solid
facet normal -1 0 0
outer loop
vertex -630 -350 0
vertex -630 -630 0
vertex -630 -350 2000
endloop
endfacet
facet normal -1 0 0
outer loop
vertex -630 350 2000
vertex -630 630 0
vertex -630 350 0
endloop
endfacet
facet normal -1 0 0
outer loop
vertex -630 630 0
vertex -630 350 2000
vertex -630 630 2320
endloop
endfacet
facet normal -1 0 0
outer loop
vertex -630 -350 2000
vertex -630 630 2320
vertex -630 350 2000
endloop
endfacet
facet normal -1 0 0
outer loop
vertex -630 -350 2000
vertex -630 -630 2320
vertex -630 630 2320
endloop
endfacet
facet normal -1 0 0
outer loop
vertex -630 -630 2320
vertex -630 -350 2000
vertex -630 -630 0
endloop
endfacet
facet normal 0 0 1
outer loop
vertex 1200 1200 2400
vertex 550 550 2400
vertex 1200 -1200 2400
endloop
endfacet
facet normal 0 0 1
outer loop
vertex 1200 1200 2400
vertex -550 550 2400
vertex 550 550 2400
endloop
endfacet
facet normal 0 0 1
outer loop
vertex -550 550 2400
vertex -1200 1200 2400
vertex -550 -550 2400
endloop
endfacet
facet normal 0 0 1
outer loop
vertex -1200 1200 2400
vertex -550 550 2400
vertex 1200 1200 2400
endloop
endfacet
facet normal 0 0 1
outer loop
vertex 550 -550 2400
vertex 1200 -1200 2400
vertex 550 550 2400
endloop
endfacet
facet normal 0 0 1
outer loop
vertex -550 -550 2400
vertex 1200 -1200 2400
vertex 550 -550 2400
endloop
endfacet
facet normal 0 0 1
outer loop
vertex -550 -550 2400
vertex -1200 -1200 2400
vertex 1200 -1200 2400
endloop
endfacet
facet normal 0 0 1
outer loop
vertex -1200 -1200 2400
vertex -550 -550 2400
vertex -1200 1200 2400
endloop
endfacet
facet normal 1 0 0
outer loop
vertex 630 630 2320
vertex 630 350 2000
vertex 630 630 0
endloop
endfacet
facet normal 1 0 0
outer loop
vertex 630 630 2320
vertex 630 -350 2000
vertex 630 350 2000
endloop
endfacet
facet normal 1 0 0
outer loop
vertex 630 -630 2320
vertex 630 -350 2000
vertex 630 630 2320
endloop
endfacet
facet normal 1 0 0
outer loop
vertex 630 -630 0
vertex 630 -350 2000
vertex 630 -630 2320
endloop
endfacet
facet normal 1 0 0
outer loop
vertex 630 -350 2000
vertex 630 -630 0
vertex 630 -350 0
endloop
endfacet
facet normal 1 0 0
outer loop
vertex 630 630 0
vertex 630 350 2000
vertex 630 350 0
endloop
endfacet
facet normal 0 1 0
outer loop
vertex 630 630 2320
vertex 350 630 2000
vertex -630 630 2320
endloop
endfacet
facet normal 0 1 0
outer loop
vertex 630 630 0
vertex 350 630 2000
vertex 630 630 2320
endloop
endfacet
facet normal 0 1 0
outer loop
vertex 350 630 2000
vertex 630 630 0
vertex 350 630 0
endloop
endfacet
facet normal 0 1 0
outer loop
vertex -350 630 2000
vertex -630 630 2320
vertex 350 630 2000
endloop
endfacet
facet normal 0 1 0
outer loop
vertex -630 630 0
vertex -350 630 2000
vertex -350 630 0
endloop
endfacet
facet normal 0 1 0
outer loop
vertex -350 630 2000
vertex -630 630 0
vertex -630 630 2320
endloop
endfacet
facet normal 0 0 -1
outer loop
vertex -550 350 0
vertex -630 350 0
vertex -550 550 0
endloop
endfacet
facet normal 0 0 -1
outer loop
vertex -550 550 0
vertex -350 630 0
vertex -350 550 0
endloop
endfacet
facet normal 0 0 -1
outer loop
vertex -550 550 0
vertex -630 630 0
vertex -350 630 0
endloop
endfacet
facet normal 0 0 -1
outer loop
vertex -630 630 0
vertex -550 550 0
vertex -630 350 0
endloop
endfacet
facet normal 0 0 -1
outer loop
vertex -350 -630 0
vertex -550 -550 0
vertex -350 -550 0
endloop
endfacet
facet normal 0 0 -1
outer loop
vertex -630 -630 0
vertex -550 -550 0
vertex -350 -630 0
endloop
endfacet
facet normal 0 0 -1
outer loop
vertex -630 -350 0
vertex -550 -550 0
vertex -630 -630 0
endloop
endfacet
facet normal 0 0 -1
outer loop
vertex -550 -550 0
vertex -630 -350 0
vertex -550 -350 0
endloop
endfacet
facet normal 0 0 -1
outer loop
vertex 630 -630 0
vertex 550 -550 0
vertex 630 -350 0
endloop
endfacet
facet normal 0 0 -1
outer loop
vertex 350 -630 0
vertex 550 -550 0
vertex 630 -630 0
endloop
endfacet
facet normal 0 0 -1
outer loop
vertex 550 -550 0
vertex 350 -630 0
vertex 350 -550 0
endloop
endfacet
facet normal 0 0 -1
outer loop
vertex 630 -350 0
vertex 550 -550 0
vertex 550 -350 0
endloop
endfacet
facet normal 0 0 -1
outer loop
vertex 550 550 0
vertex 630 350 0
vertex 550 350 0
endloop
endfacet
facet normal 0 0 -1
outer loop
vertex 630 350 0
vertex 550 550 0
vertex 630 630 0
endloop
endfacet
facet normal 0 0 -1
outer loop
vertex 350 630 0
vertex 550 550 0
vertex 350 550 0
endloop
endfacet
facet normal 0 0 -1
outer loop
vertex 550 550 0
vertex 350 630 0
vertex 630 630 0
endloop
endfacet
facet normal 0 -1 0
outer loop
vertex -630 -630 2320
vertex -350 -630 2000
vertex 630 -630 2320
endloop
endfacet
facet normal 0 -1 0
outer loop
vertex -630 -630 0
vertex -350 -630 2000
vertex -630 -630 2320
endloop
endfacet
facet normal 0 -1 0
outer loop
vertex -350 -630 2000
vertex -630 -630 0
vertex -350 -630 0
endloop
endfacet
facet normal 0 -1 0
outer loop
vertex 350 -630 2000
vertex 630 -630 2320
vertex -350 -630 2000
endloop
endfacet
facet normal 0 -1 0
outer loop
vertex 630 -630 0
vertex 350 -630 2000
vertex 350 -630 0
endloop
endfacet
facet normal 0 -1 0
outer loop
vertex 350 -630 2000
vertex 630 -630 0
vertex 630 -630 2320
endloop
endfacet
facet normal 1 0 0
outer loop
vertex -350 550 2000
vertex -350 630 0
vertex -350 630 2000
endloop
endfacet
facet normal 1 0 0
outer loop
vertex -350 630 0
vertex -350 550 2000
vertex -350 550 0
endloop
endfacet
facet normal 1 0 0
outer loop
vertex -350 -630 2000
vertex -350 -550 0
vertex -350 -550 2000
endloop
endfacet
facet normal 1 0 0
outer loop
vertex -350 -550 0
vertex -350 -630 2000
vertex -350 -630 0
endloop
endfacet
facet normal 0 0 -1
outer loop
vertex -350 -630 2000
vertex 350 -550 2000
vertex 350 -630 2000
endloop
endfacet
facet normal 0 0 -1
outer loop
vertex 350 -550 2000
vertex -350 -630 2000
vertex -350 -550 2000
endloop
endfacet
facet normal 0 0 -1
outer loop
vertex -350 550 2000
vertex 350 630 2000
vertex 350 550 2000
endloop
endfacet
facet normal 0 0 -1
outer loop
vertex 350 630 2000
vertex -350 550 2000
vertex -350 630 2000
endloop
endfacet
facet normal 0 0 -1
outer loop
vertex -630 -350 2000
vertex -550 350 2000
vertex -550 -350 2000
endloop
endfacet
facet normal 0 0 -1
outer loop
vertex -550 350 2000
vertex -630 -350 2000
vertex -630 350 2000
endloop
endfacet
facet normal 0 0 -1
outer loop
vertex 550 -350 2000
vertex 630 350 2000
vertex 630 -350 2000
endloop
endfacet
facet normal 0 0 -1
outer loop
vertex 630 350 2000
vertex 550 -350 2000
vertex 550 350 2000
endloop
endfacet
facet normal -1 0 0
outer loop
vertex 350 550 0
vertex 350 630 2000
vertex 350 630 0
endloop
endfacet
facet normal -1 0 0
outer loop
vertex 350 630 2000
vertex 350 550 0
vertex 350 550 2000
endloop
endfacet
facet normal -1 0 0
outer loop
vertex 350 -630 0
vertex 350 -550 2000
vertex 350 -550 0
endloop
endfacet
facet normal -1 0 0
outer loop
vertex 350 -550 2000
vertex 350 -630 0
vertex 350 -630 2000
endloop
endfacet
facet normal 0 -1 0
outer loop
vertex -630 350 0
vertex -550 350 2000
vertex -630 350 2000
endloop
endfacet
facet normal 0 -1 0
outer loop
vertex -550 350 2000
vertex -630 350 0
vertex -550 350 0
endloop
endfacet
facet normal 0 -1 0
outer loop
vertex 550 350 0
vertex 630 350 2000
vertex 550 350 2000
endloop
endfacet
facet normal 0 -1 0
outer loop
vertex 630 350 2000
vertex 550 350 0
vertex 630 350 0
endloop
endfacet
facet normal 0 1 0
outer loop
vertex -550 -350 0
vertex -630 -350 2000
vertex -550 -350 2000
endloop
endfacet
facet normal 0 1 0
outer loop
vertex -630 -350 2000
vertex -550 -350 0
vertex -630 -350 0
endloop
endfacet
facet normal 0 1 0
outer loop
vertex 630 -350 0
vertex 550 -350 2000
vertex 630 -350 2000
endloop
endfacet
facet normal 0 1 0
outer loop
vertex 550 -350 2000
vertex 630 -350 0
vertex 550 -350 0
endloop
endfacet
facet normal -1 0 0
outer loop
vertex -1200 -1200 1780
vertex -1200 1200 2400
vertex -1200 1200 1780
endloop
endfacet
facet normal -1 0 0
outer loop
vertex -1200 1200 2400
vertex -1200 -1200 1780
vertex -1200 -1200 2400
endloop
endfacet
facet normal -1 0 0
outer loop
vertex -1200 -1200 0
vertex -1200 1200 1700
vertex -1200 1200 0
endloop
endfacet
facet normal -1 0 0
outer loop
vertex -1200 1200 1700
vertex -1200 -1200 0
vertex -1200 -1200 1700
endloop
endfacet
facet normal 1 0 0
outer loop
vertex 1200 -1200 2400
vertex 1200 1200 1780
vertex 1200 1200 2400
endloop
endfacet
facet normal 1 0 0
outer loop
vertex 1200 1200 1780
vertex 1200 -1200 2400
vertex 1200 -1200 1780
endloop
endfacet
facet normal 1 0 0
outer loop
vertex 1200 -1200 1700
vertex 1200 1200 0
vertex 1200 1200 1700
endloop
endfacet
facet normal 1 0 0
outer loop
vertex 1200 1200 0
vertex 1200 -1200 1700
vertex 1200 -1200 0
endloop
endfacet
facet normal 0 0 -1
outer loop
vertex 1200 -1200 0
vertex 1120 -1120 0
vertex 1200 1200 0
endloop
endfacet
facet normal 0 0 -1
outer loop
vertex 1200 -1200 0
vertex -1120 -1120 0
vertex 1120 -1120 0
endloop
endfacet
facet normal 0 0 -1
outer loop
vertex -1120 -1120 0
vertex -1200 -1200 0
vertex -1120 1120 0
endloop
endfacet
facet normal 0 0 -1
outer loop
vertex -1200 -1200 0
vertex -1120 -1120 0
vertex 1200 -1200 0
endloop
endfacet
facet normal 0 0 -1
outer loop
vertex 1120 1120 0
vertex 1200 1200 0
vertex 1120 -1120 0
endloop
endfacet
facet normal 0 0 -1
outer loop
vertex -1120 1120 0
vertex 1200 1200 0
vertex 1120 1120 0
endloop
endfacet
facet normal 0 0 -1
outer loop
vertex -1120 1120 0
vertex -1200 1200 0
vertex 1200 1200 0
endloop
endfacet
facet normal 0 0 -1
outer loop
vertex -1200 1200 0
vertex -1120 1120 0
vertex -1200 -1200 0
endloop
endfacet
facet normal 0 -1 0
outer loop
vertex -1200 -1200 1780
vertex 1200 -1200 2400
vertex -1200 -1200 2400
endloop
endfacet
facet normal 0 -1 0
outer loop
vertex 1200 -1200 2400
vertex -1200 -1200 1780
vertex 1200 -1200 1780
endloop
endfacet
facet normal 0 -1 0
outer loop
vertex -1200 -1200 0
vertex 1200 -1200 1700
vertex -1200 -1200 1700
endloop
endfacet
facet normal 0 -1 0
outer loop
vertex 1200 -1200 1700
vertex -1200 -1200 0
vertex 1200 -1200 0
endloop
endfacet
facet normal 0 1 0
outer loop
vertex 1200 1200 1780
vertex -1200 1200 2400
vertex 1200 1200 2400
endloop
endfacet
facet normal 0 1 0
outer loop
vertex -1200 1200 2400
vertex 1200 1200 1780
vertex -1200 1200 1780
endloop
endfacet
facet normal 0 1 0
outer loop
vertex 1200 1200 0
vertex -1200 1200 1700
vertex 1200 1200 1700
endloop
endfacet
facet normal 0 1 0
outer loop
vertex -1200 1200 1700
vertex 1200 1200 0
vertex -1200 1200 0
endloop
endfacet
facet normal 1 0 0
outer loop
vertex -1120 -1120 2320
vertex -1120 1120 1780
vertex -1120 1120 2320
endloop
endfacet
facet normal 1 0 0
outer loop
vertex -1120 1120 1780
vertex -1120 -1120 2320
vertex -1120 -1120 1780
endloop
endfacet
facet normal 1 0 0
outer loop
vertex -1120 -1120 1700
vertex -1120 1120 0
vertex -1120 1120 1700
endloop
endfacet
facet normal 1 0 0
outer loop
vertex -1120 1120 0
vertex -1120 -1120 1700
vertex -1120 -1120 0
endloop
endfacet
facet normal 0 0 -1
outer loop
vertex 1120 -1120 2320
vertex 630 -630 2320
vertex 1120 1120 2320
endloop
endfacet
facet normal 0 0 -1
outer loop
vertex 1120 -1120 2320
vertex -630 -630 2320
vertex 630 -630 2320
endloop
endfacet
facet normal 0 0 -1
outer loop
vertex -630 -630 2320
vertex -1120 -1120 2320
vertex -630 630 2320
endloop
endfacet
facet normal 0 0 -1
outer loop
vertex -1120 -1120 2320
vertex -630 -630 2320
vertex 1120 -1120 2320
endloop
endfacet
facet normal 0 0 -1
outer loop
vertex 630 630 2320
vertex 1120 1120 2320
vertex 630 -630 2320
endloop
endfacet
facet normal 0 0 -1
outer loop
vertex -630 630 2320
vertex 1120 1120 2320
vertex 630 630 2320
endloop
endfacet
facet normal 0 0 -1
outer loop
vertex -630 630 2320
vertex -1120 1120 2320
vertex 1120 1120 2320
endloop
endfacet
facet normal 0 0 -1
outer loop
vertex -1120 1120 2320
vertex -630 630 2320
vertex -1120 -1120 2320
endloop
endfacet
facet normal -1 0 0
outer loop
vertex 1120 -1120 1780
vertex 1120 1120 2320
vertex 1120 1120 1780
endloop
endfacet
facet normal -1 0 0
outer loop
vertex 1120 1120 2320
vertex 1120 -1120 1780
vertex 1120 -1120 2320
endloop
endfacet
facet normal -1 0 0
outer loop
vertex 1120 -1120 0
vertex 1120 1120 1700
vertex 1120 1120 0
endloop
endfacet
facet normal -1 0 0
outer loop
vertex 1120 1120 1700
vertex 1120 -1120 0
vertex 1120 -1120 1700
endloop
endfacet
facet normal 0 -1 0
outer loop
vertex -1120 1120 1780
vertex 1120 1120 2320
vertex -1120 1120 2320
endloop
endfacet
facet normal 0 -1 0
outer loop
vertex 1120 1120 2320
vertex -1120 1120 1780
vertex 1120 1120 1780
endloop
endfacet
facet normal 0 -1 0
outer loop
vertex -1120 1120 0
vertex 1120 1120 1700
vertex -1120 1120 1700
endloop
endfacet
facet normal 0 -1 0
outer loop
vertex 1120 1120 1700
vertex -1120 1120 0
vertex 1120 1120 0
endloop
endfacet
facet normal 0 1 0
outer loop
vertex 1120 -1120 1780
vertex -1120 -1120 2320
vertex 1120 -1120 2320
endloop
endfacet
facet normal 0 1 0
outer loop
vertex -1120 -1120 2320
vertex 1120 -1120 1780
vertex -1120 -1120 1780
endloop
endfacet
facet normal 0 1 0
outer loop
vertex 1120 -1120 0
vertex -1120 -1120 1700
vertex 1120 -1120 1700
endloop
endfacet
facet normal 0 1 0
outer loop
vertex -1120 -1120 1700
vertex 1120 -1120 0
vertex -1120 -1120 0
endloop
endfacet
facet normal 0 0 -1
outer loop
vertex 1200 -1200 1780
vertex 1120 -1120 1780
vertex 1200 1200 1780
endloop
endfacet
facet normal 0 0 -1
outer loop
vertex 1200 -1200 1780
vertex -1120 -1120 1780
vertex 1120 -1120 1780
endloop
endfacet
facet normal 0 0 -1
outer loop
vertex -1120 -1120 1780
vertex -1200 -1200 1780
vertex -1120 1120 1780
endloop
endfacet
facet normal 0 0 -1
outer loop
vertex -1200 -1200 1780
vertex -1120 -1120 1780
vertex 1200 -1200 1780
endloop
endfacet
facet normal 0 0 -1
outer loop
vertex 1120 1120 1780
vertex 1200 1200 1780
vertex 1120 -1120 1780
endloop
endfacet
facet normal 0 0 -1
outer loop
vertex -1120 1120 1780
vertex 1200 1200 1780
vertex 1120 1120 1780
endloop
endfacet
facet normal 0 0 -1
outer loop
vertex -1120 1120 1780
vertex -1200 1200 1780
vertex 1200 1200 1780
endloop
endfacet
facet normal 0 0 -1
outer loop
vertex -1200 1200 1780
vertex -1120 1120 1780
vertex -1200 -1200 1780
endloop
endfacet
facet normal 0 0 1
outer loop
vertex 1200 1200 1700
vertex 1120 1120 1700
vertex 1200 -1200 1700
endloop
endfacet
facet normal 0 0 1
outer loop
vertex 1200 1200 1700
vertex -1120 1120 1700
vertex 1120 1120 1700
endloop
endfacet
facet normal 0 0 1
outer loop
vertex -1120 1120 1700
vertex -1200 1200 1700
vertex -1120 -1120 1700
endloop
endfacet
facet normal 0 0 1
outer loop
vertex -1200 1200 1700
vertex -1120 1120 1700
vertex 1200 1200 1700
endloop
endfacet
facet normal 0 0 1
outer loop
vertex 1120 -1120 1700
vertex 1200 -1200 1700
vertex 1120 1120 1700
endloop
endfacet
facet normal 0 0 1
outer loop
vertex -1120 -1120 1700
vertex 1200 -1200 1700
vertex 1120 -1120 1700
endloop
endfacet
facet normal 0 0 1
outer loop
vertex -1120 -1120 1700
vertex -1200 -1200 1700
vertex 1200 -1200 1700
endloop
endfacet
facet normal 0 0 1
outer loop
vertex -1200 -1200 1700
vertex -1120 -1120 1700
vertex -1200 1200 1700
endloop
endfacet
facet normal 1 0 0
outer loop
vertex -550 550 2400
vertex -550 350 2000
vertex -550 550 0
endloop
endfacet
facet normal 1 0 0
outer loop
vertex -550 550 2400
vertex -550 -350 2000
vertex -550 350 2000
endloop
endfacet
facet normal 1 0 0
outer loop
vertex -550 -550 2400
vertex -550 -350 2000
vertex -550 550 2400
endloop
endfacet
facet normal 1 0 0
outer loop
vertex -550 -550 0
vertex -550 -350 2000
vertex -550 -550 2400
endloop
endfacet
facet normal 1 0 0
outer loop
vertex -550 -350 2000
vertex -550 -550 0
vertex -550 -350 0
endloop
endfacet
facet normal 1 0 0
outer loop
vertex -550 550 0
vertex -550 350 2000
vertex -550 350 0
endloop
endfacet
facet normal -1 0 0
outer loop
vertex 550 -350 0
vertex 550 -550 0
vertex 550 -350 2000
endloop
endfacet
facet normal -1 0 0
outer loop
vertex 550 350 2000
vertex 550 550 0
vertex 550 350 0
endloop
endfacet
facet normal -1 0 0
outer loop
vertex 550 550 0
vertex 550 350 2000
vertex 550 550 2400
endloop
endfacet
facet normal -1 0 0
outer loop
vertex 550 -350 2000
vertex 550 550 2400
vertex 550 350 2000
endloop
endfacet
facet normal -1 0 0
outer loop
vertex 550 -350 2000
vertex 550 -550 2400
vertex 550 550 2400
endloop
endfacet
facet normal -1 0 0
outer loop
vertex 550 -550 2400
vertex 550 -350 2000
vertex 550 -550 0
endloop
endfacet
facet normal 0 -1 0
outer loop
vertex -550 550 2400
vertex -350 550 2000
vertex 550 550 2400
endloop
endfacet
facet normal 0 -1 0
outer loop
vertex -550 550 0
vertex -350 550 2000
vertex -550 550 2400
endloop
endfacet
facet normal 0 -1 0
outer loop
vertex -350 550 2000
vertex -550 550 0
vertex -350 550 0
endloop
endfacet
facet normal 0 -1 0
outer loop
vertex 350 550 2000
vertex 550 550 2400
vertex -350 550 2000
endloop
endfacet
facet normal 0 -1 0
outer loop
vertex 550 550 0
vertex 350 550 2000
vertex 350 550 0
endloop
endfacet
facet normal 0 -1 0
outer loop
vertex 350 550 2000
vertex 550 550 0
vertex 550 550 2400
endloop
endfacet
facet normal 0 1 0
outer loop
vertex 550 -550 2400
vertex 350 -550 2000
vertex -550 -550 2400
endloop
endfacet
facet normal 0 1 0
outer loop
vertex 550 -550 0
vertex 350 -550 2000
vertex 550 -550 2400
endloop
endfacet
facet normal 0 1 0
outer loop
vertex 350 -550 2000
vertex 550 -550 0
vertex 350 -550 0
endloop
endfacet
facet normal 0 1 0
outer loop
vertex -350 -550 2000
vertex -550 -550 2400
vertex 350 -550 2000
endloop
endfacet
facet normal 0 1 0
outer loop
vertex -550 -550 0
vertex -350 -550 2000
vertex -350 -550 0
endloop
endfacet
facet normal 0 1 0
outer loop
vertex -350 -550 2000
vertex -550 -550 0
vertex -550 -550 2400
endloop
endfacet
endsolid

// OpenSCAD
width=2400;
court_width=1100;
height=2400;
door_width=700;
door_height=2000;
loophole_height=80;
loophole_elevation=1700;
wall_thickness=80;

module kubus_i(
    w=width,
    cw=court_width,
    h=height,
    dw=door_width,
    dh=door_height,
    lh=loophole_height,
    le=loophole_elevation,
    wt=wall_thickness,
){
    translate([-w/2,-w/2,0]) difference(){
        union(){
            difference(){
                translate([(w-cw)/2-wt,(w-cw)/2-wt,0]) cube([cw+2*wt,cw+2*wt,h]);
                translate([(w-dw)/2,0,-wt]) cube([dw,w,dh+wt]);
                translate([0,(w-dw)/2,-wt]) cube([w,dw,dh+wt]);
            }
            difference() {
                cube([w,w,h]);
                translate([wt,wt,-wt]) cube([w-2*wt,w-2*wt,h]);
                translate([wt/-2,wt/-2,le]) cube([w+wt,w+wt,lh]);
            }
        }
        translate([(w-cw)/2,(w-cw)/2,wt/-2]) cube([cw,cw,h+wt]);
    }
};

kubus_i();
